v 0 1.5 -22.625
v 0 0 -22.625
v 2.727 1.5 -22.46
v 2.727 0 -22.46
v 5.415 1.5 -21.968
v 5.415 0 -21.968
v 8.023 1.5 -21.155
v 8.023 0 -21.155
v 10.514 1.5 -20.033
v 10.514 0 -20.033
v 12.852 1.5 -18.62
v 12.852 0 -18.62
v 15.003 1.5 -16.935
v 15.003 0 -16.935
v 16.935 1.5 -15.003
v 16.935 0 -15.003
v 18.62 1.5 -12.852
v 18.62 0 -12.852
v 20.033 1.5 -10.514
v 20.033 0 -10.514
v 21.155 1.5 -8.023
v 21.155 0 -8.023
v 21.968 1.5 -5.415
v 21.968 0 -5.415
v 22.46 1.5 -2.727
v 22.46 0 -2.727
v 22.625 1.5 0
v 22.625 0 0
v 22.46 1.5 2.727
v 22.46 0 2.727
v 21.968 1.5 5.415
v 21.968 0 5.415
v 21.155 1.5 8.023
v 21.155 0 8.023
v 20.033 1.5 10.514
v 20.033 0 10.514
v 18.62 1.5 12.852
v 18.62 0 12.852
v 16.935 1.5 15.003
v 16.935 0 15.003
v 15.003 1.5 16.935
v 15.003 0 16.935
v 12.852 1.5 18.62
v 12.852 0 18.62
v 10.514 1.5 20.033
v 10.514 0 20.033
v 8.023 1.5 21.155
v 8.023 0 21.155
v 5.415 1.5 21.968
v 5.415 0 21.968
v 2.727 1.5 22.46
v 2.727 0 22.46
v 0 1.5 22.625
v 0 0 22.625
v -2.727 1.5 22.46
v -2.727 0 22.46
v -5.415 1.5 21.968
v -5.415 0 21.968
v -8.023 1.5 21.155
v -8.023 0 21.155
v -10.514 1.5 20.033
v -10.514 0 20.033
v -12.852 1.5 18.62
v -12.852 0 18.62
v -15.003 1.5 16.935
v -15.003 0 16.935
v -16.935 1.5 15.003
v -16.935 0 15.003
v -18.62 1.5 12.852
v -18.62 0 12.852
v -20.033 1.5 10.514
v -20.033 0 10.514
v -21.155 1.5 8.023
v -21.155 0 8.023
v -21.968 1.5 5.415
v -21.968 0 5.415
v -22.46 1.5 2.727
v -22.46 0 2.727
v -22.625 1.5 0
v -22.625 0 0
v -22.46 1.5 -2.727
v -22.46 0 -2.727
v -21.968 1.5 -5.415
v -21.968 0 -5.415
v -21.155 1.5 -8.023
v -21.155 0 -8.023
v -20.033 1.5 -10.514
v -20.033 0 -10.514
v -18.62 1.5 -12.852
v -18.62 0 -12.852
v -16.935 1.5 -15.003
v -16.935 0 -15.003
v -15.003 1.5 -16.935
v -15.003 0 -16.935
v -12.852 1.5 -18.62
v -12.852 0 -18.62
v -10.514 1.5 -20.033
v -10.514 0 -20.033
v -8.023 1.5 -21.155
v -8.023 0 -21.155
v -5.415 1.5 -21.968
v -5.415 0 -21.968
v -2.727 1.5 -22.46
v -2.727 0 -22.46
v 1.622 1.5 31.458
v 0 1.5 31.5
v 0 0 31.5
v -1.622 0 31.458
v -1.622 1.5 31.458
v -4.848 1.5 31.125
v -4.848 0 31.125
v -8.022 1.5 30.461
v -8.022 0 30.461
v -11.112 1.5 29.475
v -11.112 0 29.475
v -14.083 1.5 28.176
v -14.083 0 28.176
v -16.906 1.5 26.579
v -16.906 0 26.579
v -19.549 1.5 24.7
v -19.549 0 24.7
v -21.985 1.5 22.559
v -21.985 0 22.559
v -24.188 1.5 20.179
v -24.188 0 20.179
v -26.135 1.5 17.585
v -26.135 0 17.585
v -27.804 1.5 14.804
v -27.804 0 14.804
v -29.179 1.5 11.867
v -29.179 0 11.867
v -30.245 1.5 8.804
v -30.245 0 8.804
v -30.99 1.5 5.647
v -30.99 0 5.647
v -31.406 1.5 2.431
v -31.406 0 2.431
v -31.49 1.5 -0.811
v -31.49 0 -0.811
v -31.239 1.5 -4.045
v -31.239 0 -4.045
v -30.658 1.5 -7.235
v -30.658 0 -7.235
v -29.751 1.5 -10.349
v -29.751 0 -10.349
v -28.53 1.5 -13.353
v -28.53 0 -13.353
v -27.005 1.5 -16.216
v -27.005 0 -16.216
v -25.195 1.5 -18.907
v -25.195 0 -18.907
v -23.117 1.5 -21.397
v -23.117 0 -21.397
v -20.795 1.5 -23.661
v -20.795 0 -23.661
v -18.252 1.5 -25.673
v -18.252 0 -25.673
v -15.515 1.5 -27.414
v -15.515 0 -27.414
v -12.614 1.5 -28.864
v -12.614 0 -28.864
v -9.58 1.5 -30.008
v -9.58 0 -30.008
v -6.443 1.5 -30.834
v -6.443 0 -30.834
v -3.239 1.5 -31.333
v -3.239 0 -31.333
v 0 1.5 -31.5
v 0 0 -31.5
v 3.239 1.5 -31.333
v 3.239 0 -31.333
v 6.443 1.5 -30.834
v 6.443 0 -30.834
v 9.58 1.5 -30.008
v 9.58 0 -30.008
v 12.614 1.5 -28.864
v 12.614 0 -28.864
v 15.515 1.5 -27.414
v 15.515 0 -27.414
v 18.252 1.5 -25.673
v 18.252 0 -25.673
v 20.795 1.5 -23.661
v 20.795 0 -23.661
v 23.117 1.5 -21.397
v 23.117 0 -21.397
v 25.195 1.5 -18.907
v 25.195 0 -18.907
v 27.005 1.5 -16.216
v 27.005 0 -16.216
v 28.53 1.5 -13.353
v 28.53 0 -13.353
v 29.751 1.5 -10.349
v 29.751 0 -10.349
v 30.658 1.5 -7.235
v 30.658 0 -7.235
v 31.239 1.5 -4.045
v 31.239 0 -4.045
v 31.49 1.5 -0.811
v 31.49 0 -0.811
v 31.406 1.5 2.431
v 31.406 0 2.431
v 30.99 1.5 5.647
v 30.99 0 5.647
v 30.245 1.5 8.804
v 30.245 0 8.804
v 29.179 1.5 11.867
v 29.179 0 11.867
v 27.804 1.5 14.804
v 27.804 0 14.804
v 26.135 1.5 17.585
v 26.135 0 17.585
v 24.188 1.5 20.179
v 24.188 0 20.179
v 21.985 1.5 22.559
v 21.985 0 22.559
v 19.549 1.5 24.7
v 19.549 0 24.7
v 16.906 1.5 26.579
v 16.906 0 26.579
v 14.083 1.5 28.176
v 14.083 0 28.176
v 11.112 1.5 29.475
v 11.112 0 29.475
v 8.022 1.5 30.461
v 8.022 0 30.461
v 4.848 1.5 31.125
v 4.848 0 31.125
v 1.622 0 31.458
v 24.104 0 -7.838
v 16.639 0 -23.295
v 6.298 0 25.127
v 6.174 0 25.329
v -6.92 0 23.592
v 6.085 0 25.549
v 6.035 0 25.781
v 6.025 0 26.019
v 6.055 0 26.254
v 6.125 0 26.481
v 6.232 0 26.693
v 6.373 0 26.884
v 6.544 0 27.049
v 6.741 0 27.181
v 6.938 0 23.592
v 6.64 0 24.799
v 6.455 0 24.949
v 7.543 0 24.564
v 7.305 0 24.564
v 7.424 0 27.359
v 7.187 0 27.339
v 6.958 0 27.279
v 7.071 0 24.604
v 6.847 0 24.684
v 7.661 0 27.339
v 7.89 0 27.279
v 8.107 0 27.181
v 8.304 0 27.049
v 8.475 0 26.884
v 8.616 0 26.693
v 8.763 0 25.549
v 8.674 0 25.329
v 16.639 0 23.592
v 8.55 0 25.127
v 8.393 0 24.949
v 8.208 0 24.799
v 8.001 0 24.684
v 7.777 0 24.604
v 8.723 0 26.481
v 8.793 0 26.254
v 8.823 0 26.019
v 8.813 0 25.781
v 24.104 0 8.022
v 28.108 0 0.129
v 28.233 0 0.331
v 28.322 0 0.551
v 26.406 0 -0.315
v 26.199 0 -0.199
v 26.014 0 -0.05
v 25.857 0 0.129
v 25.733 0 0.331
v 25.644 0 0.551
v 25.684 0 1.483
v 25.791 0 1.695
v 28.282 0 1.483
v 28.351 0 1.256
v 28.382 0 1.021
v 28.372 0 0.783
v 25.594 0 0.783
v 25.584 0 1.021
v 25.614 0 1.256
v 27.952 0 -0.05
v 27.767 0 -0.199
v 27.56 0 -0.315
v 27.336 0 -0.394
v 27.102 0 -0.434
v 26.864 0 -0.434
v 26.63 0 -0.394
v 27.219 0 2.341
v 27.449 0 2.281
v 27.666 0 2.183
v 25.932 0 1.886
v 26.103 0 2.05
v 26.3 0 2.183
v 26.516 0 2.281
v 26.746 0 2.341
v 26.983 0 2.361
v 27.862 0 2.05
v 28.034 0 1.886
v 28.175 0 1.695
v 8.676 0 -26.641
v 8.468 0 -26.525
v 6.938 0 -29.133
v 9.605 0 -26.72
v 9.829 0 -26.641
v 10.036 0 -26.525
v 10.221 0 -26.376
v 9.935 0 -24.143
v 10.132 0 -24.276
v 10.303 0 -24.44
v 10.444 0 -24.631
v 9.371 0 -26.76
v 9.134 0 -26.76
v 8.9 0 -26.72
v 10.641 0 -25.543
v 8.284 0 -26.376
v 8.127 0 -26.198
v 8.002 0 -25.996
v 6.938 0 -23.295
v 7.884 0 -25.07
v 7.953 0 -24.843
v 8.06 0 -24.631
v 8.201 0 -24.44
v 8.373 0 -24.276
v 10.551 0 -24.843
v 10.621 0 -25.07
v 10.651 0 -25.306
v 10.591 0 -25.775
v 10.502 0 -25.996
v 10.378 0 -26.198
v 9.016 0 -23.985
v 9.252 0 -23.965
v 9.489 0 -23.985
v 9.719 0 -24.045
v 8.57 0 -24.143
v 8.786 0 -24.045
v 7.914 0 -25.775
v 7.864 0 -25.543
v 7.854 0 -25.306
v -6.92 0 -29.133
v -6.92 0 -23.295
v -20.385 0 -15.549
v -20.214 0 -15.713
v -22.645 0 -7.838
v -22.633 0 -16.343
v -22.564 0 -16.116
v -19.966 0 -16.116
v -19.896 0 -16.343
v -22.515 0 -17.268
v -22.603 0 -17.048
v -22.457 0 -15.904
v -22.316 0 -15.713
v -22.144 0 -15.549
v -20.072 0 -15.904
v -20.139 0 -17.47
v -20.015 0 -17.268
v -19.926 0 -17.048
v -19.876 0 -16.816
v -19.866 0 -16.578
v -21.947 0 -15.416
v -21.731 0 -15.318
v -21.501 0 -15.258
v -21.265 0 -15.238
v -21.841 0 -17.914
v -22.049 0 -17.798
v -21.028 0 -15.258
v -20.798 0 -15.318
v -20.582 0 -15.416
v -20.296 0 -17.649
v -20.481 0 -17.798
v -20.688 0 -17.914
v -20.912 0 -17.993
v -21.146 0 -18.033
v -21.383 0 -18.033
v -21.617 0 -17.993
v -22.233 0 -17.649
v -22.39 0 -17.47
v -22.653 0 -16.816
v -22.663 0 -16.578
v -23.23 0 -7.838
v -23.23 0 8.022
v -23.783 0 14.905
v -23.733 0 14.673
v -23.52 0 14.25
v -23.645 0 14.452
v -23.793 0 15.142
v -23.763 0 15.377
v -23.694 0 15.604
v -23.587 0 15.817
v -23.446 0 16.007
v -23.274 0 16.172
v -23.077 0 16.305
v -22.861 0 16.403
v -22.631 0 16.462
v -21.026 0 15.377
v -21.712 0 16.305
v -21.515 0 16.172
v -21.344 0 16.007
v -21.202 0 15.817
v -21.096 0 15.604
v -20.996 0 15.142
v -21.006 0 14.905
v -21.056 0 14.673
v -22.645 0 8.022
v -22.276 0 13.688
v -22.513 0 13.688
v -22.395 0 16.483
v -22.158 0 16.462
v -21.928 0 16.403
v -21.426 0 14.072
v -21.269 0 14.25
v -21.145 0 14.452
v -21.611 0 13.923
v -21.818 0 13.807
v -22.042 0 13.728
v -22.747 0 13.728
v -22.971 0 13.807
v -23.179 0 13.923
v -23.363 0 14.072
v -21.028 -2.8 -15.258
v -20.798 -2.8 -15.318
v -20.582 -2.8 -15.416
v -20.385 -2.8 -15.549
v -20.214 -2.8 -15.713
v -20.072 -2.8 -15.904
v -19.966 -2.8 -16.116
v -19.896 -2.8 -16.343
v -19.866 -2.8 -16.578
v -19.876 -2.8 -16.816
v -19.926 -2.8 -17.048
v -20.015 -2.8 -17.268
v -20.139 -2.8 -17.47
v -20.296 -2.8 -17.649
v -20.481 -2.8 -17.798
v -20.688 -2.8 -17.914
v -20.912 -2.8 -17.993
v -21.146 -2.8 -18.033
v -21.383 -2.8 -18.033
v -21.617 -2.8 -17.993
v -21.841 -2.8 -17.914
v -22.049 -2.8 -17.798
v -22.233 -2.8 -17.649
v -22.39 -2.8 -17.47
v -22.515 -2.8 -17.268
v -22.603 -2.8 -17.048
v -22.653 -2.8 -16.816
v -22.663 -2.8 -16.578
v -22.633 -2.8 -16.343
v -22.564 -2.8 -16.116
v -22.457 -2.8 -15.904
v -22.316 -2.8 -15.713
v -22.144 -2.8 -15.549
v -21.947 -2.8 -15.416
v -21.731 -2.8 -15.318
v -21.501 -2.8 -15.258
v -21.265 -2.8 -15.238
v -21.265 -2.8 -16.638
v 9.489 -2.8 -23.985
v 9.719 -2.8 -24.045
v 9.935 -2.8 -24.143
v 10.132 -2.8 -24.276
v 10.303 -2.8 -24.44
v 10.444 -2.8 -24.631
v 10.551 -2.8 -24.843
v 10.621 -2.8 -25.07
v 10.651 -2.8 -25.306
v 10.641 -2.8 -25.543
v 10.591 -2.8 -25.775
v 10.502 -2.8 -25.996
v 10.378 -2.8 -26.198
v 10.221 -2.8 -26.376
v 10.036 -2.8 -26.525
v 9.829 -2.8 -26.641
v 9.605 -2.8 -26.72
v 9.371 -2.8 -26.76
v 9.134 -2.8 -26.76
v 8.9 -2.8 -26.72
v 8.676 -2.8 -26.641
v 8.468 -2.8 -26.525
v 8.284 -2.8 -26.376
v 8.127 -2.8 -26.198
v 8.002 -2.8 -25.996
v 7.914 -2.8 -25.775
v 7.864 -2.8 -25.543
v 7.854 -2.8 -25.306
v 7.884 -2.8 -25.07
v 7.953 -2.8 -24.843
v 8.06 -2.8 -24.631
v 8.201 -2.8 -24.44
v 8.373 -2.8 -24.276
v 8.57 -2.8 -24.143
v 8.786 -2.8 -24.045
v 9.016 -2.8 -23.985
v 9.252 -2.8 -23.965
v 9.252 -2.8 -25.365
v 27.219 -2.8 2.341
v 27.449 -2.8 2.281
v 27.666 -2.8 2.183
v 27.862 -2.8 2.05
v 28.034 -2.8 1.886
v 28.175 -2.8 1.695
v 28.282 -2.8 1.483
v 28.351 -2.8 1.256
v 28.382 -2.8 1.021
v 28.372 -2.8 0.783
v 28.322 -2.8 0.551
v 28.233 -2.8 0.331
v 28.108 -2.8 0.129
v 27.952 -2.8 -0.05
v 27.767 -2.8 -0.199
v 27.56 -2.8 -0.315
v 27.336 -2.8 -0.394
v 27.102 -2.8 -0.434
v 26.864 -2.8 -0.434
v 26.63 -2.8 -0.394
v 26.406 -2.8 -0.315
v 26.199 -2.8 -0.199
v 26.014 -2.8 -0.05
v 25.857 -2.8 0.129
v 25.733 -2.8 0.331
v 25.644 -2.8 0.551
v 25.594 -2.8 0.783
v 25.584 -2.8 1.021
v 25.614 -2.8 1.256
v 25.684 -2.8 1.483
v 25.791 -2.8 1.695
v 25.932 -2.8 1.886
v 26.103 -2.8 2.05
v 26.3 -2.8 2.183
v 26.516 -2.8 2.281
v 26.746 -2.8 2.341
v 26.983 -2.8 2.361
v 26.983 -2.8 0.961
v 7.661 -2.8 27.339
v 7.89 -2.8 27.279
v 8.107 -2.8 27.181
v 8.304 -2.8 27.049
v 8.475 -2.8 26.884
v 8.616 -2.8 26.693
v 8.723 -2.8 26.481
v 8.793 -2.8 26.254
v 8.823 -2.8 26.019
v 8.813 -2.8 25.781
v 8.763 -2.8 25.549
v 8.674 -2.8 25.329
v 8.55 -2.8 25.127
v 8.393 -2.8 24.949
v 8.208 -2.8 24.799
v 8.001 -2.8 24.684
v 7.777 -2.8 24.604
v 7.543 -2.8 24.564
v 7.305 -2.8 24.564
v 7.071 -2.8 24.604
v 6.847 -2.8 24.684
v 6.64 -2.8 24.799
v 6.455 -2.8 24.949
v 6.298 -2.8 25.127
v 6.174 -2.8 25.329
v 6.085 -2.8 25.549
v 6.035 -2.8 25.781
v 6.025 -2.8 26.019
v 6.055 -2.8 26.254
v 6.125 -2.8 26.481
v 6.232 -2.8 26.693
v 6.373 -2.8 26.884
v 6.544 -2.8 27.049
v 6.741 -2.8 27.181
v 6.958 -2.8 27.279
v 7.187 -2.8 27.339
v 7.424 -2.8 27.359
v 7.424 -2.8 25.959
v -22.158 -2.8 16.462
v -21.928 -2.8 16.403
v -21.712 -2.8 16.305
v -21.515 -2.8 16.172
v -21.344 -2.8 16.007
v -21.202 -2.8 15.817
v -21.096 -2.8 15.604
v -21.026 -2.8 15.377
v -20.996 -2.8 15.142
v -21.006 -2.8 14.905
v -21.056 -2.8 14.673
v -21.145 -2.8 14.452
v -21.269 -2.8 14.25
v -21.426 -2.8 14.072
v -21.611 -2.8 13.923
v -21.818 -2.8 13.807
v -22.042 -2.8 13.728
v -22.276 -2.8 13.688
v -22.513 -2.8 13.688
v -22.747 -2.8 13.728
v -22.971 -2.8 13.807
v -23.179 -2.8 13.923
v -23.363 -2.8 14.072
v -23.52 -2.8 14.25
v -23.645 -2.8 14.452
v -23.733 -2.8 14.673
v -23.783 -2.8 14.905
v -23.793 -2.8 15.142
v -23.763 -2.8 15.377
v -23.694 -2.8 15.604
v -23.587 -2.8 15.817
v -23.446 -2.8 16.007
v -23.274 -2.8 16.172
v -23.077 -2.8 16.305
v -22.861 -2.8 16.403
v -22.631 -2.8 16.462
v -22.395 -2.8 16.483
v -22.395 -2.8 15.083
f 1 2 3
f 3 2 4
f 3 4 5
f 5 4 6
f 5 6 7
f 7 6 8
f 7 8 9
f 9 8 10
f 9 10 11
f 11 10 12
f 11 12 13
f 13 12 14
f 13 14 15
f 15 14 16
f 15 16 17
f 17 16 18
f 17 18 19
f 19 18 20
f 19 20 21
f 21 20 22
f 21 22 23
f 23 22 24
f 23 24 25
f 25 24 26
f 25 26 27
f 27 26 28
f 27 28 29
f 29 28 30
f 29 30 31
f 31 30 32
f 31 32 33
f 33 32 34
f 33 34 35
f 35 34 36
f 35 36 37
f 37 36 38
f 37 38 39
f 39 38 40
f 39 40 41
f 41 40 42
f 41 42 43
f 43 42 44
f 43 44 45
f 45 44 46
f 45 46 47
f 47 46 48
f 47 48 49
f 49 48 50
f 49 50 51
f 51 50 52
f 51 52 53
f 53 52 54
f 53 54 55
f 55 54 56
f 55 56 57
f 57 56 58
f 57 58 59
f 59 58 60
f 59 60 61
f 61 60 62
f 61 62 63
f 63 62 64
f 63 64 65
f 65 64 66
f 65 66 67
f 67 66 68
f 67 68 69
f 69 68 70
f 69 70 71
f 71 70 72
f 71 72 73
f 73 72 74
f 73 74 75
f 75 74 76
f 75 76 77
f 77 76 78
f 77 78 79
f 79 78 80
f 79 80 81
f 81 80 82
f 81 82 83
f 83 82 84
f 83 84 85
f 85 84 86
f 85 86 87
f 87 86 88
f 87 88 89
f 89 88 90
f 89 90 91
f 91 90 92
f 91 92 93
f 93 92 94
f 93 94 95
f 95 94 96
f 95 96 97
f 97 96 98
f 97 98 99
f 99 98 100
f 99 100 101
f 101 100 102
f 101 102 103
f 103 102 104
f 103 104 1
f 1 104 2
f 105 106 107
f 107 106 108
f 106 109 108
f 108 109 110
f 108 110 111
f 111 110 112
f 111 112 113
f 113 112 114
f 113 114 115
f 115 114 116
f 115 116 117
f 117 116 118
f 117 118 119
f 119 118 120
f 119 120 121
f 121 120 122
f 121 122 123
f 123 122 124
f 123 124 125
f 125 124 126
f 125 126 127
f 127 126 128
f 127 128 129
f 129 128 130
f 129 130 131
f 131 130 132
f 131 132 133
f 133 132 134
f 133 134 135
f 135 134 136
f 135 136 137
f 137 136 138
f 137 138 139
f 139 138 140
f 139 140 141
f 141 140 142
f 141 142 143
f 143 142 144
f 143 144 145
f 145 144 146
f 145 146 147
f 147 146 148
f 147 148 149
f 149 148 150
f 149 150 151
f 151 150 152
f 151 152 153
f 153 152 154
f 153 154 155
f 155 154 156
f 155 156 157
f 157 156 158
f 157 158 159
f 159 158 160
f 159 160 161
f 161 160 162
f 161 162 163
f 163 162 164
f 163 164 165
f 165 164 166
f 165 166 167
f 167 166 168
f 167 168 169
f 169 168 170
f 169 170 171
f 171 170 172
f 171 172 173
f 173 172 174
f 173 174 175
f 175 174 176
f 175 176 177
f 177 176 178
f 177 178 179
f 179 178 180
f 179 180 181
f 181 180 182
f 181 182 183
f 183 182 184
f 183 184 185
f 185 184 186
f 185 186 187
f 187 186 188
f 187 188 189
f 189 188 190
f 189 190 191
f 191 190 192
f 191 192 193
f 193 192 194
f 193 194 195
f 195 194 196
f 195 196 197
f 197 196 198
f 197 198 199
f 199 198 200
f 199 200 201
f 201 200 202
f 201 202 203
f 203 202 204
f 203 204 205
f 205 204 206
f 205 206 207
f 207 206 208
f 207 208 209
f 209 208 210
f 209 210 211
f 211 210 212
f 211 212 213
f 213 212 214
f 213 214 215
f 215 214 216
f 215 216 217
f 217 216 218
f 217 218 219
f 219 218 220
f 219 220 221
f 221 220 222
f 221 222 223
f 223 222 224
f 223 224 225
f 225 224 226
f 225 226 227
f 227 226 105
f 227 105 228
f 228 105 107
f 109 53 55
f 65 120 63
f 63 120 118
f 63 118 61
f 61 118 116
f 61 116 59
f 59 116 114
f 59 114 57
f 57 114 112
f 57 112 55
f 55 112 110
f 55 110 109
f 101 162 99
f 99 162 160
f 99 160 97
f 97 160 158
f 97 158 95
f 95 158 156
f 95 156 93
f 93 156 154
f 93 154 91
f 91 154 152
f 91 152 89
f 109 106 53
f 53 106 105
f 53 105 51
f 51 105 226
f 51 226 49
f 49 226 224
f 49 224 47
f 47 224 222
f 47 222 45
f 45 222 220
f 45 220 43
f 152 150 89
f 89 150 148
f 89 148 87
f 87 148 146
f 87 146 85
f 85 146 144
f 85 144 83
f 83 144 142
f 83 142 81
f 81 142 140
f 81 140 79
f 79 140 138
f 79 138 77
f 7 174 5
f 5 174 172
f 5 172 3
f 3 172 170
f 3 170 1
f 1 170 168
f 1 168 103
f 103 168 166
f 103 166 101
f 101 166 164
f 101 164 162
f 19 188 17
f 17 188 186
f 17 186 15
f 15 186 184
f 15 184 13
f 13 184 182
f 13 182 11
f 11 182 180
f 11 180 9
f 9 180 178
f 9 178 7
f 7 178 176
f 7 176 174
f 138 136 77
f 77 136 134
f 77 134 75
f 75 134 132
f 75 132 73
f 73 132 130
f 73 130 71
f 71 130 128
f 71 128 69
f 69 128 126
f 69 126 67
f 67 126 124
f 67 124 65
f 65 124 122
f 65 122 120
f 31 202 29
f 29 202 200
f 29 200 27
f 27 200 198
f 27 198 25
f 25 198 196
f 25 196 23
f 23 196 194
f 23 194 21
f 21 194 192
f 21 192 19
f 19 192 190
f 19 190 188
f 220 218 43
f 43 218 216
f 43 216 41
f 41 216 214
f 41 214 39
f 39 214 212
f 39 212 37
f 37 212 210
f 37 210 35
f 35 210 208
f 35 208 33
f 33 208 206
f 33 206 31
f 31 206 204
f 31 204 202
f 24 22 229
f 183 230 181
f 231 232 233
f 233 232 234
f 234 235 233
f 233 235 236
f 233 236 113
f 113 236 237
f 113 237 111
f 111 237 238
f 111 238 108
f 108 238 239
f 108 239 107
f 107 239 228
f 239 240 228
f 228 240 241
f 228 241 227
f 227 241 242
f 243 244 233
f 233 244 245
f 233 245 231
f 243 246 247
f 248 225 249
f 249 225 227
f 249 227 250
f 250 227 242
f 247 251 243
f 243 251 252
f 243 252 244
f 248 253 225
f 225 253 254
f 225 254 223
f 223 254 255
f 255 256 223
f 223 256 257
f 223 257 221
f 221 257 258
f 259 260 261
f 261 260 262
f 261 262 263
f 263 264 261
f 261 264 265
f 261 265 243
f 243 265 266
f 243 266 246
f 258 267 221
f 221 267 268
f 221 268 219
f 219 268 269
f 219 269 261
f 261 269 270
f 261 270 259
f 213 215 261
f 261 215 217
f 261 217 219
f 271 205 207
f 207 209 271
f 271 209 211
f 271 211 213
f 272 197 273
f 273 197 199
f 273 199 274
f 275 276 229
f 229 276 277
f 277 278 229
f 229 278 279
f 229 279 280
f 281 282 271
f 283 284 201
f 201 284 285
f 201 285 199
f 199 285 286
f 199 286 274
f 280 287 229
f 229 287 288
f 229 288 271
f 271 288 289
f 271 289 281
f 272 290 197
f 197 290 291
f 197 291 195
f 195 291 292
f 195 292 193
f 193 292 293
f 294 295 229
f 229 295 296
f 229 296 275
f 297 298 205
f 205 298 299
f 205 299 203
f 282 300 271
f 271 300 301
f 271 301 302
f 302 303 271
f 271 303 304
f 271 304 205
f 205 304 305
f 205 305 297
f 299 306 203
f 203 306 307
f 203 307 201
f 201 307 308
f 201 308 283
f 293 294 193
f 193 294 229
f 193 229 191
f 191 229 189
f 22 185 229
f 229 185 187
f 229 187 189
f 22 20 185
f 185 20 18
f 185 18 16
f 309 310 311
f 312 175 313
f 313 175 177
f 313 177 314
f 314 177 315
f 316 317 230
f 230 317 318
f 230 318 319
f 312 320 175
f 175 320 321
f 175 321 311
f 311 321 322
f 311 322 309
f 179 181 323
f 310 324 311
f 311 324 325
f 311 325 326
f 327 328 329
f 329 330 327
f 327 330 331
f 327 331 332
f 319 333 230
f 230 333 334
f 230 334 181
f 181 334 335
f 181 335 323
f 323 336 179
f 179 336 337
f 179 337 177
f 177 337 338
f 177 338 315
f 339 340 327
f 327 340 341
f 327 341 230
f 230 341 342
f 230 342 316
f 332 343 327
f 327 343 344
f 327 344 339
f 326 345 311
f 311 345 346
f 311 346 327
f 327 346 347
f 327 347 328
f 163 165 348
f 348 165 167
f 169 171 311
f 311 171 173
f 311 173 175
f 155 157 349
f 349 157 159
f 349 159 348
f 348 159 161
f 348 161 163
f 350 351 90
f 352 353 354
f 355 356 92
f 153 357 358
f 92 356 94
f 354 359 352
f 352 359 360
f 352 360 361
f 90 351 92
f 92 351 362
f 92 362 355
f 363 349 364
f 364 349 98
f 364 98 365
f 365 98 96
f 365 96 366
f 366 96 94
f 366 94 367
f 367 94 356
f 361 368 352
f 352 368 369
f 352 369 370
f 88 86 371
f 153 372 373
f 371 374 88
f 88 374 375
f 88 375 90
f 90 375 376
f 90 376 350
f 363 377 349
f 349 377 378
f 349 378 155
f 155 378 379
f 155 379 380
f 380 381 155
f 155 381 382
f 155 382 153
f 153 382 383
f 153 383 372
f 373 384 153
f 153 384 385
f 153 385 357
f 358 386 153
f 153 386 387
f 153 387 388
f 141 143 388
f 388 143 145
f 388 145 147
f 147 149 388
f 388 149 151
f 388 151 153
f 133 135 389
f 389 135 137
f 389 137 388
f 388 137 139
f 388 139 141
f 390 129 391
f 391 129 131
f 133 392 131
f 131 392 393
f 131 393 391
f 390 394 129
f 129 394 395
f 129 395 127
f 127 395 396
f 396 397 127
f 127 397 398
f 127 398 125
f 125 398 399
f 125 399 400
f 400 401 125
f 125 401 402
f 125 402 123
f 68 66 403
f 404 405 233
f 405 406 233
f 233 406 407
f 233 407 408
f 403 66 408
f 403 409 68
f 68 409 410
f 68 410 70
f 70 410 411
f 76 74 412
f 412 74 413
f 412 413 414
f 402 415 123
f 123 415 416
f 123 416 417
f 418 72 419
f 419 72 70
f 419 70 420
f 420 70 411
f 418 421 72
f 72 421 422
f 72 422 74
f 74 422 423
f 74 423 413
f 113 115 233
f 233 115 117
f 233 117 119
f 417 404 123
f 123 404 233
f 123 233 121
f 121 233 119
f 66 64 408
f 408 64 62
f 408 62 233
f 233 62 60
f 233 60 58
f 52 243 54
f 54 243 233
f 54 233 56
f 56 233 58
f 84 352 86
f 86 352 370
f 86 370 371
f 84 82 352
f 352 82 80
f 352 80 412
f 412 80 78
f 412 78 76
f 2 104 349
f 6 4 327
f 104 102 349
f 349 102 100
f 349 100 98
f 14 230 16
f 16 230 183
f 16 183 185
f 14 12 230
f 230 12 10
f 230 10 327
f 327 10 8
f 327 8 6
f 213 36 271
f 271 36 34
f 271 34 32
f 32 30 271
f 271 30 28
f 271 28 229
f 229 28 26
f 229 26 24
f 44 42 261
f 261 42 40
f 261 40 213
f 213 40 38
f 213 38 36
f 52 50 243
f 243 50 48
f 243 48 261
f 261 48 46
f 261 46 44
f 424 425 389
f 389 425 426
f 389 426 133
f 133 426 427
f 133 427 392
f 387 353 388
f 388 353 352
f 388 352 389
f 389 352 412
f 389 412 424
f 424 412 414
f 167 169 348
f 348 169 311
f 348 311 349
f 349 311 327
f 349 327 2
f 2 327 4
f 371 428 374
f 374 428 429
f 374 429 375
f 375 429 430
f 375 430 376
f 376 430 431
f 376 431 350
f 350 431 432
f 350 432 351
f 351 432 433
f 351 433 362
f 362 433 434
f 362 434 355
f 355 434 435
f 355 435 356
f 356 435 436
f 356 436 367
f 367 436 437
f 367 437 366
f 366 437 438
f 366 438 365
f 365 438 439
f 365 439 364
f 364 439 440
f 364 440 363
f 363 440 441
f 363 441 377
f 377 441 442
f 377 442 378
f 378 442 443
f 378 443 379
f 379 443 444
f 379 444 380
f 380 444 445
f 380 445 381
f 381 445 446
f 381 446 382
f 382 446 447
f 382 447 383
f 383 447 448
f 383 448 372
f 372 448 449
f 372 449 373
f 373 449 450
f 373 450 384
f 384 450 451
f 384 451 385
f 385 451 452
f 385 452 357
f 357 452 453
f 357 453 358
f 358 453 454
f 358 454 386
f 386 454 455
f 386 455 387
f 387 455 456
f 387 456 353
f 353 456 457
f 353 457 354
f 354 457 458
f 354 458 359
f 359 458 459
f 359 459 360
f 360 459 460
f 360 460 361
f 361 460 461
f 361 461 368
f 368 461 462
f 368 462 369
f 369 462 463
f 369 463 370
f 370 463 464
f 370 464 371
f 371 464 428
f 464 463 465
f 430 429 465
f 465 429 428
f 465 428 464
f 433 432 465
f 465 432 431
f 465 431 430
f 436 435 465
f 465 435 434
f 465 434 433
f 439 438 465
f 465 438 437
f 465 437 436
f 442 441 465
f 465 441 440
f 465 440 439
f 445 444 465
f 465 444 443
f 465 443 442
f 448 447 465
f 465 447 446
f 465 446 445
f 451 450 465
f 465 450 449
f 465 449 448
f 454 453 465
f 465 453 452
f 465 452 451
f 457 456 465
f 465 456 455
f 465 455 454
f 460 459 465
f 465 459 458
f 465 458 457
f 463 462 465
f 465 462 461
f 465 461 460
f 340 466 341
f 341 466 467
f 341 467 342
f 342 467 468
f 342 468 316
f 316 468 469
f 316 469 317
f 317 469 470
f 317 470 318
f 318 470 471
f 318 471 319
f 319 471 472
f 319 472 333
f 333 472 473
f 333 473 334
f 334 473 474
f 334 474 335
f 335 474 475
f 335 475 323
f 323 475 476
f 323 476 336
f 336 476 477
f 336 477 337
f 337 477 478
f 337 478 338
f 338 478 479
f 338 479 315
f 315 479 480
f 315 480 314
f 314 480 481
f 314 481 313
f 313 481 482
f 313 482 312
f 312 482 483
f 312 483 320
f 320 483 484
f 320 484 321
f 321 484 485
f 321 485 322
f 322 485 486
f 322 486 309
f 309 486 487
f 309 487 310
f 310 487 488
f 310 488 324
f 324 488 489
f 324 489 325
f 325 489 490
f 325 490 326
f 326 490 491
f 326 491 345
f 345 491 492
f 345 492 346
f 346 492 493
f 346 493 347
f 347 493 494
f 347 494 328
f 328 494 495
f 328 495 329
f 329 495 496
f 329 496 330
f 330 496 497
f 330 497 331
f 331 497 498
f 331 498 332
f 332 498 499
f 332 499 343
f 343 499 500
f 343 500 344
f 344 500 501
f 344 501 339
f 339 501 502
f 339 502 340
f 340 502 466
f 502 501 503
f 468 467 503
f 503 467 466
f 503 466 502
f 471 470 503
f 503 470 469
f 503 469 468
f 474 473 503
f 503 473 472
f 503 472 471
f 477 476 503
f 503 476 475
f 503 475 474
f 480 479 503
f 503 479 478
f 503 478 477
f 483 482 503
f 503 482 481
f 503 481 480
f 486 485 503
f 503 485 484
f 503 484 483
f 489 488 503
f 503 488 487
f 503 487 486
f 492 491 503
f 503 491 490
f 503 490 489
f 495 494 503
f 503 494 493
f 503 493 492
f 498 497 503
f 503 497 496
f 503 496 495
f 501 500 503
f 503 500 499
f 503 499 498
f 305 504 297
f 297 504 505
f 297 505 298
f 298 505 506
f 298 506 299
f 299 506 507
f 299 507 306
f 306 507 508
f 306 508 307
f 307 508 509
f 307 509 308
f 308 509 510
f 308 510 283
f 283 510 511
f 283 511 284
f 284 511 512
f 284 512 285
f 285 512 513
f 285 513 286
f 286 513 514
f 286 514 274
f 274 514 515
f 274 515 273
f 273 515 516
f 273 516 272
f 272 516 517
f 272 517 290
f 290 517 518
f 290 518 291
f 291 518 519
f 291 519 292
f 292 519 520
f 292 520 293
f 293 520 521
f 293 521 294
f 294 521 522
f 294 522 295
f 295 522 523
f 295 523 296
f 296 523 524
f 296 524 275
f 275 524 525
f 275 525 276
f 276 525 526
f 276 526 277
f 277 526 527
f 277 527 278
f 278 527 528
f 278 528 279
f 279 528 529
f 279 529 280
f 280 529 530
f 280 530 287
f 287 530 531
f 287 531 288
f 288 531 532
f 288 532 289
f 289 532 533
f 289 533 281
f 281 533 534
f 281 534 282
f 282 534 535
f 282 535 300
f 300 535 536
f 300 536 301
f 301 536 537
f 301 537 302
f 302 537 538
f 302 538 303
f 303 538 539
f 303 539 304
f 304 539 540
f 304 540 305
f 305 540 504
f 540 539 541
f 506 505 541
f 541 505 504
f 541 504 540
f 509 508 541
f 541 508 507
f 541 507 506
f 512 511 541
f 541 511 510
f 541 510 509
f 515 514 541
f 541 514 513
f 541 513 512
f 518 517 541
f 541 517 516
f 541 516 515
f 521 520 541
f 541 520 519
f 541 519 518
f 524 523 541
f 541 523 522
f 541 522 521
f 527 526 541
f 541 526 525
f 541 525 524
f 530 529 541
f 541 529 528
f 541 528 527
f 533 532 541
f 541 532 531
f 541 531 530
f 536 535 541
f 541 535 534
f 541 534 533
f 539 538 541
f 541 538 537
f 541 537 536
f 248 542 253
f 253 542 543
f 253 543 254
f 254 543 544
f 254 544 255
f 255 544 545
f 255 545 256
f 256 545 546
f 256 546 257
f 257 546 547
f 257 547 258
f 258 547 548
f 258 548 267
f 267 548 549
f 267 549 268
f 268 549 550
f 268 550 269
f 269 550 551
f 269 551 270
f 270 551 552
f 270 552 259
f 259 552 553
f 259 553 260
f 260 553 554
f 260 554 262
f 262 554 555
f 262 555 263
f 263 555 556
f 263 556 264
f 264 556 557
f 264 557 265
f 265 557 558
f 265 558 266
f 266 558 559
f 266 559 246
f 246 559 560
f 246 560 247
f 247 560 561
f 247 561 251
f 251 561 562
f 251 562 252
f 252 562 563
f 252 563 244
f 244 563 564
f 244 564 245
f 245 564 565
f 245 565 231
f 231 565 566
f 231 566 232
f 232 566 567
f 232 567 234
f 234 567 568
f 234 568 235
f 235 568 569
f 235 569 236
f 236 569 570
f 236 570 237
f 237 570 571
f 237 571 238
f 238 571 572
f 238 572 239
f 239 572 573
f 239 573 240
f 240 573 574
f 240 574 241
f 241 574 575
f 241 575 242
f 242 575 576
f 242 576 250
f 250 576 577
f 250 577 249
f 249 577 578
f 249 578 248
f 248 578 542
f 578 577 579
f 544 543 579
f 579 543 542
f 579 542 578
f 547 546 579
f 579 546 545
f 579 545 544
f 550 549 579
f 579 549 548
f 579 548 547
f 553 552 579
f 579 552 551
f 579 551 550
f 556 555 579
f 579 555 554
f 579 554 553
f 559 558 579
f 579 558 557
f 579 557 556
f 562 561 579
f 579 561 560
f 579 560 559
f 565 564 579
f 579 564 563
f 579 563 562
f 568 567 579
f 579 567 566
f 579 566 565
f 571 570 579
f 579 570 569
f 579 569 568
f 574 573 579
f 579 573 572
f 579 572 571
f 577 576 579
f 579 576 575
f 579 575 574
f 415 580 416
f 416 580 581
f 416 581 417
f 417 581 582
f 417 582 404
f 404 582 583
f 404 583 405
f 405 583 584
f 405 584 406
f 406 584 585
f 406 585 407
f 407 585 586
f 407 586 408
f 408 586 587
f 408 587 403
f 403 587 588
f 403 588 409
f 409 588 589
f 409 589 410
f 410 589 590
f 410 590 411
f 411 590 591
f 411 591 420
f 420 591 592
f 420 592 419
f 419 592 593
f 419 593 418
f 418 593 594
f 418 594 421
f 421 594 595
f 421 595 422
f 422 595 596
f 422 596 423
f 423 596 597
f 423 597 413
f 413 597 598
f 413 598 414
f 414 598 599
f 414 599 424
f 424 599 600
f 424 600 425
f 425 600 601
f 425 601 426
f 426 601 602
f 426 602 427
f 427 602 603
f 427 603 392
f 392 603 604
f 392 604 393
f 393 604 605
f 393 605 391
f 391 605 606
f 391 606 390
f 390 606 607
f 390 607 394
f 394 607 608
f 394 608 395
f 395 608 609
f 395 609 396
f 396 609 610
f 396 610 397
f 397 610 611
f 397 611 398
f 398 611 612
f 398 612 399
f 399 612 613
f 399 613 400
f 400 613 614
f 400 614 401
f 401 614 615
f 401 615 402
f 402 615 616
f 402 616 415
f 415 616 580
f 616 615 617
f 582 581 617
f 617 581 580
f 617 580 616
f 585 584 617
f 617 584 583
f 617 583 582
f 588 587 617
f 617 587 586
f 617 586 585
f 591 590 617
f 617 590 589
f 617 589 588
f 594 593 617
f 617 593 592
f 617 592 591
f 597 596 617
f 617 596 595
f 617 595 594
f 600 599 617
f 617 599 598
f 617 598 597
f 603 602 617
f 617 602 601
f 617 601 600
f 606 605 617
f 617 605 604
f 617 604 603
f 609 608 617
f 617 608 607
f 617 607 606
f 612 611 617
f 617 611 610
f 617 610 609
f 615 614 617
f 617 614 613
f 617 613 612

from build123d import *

# Parameters (mm, degrees)
SKETCH1_R           = 31.5
SKETCH1_R_2         = 22.625
BOSS_EXTRUDE1_DEPTH = 1.5
SKETCH2_R           = 1.4
BOSS_EXTRUDE2_DEPTH = 2.8


with BuildPart() as part:
    # Sketch1 → Boss-Extrude1 (new body)
    with BuildSketch(Plane(origin=(0, 0, 0), x_dir=(1, 0, 0), z_dir=(0, 1, 0))):
        with Locations(Location((0, 0, 0), (0, 0, 270))):
            Circle(SKETCH1_R)
        with Locations(Location((0, 0, 0), (0, 0, 270))):
            Circle(SKETCH1_R_2, mode=Mode.SUBTRACT)
    extrude(amount=BOSS_EXTRUDE1_DEPTH)

    # Sketch2 → Boss-Extrude2 (add)
    with BuildSketch(Plane(origin=(0, 0, 0), x_dir=(1, 0, 0), z_dir=(0, 1, 0))):
        with Locations(Location((-21.264622422, 16.637783303, 0), (0, 0, 270))):
            Circle(SKETCH2_R)
        with Locations(Location((9.252342519, 25.365215511, 0), (0, 0, 270))):
            Circle(SKETCH2_R)
        with Locations(Location((26.982884575, -0.961217985, 0), (0, 0, 270))):
            Circle(SKETCH2_R)
        with Locations(Location((7.423997262, -25.959280896, 0), (0, 0, 270))):
            Circle(SKETCH2_R)
        with Locations(Location((-22.394601934, -15.082499932, 0), (0, 0, 270))):
            Circle(SKETCH2_R)
    extrude(amount=-BOSS_EXTRUDE2_DEPTH)


solid = part.part
